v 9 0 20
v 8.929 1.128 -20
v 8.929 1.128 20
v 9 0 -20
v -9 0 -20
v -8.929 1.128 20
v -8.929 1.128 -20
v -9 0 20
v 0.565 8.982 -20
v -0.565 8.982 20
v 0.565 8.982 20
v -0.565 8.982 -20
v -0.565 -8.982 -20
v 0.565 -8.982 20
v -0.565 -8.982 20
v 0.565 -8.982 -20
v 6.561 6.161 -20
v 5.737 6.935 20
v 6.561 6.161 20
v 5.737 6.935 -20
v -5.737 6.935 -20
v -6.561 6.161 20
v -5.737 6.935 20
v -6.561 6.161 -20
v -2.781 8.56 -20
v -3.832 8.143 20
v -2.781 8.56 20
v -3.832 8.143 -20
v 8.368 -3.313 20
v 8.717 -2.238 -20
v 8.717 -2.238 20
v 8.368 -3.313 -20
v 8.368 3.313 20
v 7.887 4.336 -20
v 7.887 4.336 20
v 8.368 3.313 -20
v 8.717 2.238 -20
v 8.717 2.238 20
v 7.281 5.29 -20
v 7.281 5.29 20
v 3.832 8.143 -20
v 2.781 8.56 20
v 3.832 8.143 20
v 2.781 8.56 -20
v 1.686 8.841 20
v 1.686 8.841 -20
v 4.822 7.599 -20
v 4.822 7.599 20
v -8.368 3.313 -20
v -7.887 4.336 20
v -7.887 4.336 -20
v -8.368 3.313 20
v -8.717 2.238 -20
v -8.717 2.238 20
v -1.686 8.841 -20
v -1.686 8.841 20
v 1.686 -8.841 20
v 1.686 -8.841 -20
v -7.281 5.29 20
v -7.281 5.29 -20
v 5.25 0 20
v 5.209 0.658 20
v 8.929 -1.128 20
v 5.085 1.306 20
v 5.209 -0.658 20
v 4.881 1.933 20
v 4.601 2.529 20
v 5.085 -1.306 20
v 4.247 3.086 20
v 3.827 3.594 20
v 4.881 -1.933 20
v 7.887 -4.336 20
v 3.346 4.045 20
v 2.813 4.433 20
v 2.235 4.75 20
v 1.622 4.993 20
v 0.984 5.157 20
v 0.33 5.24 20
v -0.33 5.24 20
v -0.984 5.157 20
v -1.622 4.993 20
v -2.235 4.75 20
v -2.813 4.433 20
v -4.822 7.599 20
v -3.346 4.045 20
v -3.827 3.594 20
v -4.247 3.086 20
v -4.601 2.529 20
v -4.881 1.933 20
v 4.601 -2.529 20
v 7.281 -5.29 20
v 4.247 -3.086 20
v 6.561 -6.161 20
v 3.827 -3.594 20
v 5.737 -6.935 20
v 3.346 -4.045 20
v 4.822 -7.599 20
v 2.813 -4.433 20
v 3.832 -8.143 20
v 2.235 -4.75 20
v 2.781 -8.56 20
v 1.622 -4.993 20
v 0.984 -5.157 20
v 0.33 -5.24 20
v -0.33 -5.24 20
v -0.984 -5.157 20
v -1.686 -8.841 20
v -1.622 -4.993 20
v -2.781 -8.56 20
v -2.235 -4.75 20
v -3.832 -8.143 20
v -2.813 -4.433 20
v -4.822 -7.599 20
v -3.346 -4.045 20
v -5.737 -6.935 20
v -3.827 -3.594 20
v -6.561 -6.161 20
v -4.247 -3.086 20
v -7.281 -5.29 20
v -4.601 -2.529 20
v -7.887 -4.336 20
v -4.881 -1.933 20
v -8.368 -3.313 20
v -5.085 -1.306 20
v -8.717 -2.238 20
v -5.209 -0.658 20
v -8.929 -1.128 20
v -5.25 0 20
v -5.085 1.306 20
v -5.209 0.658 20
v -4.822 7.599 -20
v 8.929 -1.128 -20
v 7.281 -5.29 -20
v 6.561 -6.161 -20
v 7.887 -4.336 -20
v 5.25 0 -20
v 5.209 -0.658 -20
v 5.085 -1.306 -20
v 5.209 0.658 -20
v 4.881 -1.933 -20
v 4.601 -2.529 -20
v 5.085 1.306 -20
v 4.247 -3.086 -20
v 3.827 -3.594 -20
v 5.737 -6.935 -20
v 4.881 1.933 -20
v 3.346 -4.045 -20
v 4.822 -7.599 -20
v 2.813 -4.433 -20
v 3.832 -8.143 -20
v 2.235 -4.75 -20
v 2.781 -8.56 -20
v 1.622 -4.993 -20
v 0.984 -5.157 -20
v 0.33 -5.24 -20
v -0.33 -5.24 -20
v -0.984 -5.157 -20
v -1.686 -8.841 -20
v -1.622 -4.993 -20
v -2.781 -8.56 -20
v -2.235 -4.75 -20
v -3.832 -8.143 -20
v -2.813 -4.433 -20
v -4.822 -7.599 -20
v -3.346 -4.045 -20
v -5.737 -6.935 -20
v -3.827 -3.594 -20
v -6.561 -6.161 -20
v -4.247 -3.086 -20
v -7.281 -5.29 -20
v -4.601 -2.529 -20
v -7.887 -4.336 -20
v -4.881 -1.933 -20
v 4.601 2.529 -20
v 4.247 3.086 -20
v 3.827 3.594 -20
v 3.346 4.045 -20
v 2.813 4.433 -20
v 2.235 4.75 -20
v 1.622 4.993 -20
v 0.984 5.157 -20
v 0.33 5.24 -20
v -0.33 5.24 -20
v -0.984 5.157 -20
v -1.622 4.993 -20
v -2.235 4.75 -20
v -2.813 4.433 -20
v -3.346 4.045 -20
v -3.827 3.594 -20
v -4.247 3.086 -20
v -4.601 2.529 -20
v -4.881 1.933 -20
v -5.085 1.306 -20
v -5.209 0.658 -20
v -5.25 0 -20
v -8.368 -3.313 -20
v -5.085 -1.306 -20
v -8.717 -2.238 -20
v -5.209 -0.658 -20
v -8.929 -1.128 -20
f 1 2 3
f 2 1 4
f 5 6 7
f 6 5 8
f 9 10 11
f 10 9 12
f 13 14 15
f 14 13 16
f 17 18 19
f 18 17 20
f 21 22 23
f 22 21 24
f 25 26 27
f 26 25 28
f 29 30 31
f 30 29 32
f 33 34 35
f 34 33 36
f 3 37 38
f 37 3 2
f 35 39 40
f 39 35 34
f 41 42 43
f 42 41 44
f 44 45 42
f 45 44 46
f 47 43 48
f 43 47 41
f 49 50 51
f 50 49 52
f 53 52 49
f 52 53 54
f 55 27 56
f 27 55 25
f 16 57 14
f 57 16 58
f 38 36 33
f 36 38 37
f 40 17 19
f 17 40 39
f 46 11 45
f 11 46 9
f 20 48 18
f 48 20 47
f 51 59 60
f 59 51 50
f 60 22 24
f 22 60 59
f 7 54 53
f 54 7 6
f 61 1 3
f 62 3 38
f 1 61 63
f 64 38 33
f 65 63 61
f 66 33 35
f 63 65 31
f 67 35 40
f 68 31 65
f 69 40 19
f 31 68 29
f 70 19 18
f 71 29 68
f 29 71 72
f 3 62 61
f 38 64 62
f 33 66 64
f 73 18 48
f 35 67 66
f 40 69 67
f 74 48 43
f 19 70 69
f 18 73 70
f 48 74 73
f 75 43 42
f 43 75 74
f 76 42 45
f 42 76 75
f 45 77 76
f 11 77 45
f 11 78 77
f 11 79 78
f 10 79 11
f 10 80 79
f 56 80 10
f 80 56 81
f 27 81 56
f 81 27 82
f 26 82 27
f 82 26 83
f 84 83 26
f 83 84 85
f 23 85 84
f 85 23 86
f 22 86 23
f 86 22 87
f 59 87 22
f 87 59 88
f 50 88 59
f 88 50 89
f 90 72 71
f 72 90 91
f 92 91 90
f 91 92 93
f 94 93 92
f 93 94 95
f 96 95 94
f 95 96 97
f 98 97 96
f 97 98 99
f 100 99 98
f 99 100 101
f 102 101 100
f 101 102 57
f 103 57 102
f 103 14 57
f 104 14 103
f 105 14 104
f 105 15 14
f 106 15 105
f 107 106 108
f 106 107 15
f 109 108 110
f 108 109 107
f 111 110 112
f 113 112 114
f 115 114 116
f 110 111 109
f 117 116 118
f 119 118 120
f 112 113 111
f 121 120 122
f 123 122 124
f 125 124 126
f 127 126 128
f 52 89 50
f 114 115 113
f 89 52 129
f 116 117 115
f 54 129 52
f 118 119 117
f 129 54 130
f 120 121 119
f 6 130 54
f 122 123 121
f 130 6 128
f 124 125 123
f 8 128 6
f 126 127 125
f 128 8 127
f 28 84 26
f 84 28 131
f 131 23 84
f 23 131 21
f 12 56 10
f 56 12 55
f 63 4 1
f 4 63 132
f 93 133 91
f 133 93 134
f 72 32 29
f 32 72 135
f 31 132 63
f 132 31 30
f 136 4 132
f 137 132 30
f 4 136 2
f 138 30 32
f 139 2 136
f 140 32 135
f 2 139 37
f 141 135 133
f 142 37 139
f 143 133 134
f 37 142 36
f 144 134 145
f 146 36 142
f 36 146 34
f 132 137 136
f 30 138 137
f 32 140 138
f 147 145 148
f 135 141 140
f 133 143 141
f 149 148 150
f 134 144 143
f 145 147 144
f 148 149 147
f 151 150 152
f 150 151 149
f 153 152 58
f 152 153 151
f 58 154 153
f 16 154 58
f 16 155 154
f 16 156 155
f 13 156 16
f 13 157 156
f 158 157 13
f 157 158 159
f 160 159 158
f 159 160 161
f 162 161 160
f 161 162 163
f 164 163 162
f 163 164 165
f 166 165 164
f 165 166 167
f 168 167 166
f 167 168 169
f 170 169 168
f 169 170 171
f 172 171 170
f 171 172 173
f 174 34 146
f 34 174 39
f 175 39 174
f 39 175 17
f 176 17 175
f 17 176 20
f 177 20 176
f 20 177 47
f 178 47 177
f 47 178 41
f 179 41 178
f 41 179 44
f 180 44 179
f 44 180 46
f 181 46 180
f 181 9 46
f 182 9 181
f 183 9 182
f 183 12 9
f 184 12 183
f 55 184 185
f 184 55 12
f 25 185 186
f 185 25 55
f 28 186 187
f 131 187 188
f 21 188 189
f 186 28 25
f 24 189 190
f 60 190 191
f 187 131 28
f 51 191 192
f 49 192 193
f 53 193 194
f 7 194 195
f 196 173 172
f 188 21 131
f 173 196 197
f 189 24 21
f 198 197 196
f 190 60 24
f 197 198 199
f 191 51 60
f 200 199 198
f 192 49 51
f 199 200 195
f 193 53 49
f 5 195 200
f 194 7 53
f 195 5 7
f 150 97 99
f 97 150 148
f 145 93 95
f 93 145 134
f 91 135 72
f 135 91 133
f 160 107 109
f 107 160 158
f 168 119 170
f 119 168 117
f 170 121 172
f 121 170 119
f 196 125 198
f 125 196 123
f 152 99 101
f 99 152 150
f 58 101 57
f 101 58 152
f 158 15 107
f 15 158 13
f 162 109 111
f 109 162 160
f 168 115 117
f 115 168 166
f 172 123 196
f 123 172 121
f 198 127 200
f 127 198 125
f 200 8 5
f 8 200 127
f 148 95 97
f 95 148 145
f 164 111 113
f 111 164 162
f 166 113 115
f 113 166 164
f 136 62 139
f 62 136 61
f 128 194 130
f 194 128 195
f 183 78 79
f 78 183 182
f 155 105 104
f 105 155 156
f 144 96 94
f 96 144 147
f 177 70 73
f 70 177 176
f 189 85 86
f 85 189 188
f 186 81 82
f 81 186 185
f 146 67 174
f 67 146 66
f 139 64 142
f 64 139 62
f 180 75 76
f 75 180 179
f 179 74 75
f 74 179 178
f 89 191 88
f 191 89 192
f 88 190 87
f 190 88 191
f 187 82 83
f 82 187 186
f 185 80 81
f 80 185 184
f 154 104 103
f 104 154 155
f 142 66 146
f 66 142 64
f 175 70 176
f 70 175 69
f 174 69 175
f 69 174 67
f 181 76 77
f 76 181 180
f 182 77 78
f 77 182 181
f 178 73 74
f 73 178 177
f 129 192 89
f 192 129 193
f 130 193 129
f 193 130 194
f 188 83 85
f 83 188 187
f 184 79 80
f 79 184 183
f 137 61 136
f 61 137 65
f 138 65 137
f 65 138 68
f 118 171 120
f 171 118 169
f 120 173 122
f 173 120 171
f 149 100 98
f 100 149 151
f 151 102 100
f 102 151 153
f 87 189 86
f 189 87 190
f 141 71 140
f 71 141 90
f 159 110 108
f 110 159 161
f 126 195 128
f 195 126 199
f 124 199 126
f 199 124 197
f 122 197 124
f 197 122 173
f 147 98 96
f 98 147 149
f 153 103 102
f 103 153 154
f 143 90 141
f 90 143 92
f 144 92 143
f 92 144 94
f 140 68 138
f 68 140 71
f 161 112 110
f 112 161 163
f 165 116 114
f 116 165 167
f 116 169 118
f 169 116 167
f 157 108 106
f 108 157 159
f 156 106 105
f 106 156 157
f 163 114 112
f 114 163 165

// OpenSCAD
$fn = 50;


difference() {
	union() {
		translate(v = [0, 0, -20.0000000000]) {
			cylinder(h = 40, r = 9.0000000000);
		}
	}
	union() {
		translate(v = [0, 0, -100.0000000000]) {
			cylinder(h = 200, r = 5.2500000000);
		}
	}
}
